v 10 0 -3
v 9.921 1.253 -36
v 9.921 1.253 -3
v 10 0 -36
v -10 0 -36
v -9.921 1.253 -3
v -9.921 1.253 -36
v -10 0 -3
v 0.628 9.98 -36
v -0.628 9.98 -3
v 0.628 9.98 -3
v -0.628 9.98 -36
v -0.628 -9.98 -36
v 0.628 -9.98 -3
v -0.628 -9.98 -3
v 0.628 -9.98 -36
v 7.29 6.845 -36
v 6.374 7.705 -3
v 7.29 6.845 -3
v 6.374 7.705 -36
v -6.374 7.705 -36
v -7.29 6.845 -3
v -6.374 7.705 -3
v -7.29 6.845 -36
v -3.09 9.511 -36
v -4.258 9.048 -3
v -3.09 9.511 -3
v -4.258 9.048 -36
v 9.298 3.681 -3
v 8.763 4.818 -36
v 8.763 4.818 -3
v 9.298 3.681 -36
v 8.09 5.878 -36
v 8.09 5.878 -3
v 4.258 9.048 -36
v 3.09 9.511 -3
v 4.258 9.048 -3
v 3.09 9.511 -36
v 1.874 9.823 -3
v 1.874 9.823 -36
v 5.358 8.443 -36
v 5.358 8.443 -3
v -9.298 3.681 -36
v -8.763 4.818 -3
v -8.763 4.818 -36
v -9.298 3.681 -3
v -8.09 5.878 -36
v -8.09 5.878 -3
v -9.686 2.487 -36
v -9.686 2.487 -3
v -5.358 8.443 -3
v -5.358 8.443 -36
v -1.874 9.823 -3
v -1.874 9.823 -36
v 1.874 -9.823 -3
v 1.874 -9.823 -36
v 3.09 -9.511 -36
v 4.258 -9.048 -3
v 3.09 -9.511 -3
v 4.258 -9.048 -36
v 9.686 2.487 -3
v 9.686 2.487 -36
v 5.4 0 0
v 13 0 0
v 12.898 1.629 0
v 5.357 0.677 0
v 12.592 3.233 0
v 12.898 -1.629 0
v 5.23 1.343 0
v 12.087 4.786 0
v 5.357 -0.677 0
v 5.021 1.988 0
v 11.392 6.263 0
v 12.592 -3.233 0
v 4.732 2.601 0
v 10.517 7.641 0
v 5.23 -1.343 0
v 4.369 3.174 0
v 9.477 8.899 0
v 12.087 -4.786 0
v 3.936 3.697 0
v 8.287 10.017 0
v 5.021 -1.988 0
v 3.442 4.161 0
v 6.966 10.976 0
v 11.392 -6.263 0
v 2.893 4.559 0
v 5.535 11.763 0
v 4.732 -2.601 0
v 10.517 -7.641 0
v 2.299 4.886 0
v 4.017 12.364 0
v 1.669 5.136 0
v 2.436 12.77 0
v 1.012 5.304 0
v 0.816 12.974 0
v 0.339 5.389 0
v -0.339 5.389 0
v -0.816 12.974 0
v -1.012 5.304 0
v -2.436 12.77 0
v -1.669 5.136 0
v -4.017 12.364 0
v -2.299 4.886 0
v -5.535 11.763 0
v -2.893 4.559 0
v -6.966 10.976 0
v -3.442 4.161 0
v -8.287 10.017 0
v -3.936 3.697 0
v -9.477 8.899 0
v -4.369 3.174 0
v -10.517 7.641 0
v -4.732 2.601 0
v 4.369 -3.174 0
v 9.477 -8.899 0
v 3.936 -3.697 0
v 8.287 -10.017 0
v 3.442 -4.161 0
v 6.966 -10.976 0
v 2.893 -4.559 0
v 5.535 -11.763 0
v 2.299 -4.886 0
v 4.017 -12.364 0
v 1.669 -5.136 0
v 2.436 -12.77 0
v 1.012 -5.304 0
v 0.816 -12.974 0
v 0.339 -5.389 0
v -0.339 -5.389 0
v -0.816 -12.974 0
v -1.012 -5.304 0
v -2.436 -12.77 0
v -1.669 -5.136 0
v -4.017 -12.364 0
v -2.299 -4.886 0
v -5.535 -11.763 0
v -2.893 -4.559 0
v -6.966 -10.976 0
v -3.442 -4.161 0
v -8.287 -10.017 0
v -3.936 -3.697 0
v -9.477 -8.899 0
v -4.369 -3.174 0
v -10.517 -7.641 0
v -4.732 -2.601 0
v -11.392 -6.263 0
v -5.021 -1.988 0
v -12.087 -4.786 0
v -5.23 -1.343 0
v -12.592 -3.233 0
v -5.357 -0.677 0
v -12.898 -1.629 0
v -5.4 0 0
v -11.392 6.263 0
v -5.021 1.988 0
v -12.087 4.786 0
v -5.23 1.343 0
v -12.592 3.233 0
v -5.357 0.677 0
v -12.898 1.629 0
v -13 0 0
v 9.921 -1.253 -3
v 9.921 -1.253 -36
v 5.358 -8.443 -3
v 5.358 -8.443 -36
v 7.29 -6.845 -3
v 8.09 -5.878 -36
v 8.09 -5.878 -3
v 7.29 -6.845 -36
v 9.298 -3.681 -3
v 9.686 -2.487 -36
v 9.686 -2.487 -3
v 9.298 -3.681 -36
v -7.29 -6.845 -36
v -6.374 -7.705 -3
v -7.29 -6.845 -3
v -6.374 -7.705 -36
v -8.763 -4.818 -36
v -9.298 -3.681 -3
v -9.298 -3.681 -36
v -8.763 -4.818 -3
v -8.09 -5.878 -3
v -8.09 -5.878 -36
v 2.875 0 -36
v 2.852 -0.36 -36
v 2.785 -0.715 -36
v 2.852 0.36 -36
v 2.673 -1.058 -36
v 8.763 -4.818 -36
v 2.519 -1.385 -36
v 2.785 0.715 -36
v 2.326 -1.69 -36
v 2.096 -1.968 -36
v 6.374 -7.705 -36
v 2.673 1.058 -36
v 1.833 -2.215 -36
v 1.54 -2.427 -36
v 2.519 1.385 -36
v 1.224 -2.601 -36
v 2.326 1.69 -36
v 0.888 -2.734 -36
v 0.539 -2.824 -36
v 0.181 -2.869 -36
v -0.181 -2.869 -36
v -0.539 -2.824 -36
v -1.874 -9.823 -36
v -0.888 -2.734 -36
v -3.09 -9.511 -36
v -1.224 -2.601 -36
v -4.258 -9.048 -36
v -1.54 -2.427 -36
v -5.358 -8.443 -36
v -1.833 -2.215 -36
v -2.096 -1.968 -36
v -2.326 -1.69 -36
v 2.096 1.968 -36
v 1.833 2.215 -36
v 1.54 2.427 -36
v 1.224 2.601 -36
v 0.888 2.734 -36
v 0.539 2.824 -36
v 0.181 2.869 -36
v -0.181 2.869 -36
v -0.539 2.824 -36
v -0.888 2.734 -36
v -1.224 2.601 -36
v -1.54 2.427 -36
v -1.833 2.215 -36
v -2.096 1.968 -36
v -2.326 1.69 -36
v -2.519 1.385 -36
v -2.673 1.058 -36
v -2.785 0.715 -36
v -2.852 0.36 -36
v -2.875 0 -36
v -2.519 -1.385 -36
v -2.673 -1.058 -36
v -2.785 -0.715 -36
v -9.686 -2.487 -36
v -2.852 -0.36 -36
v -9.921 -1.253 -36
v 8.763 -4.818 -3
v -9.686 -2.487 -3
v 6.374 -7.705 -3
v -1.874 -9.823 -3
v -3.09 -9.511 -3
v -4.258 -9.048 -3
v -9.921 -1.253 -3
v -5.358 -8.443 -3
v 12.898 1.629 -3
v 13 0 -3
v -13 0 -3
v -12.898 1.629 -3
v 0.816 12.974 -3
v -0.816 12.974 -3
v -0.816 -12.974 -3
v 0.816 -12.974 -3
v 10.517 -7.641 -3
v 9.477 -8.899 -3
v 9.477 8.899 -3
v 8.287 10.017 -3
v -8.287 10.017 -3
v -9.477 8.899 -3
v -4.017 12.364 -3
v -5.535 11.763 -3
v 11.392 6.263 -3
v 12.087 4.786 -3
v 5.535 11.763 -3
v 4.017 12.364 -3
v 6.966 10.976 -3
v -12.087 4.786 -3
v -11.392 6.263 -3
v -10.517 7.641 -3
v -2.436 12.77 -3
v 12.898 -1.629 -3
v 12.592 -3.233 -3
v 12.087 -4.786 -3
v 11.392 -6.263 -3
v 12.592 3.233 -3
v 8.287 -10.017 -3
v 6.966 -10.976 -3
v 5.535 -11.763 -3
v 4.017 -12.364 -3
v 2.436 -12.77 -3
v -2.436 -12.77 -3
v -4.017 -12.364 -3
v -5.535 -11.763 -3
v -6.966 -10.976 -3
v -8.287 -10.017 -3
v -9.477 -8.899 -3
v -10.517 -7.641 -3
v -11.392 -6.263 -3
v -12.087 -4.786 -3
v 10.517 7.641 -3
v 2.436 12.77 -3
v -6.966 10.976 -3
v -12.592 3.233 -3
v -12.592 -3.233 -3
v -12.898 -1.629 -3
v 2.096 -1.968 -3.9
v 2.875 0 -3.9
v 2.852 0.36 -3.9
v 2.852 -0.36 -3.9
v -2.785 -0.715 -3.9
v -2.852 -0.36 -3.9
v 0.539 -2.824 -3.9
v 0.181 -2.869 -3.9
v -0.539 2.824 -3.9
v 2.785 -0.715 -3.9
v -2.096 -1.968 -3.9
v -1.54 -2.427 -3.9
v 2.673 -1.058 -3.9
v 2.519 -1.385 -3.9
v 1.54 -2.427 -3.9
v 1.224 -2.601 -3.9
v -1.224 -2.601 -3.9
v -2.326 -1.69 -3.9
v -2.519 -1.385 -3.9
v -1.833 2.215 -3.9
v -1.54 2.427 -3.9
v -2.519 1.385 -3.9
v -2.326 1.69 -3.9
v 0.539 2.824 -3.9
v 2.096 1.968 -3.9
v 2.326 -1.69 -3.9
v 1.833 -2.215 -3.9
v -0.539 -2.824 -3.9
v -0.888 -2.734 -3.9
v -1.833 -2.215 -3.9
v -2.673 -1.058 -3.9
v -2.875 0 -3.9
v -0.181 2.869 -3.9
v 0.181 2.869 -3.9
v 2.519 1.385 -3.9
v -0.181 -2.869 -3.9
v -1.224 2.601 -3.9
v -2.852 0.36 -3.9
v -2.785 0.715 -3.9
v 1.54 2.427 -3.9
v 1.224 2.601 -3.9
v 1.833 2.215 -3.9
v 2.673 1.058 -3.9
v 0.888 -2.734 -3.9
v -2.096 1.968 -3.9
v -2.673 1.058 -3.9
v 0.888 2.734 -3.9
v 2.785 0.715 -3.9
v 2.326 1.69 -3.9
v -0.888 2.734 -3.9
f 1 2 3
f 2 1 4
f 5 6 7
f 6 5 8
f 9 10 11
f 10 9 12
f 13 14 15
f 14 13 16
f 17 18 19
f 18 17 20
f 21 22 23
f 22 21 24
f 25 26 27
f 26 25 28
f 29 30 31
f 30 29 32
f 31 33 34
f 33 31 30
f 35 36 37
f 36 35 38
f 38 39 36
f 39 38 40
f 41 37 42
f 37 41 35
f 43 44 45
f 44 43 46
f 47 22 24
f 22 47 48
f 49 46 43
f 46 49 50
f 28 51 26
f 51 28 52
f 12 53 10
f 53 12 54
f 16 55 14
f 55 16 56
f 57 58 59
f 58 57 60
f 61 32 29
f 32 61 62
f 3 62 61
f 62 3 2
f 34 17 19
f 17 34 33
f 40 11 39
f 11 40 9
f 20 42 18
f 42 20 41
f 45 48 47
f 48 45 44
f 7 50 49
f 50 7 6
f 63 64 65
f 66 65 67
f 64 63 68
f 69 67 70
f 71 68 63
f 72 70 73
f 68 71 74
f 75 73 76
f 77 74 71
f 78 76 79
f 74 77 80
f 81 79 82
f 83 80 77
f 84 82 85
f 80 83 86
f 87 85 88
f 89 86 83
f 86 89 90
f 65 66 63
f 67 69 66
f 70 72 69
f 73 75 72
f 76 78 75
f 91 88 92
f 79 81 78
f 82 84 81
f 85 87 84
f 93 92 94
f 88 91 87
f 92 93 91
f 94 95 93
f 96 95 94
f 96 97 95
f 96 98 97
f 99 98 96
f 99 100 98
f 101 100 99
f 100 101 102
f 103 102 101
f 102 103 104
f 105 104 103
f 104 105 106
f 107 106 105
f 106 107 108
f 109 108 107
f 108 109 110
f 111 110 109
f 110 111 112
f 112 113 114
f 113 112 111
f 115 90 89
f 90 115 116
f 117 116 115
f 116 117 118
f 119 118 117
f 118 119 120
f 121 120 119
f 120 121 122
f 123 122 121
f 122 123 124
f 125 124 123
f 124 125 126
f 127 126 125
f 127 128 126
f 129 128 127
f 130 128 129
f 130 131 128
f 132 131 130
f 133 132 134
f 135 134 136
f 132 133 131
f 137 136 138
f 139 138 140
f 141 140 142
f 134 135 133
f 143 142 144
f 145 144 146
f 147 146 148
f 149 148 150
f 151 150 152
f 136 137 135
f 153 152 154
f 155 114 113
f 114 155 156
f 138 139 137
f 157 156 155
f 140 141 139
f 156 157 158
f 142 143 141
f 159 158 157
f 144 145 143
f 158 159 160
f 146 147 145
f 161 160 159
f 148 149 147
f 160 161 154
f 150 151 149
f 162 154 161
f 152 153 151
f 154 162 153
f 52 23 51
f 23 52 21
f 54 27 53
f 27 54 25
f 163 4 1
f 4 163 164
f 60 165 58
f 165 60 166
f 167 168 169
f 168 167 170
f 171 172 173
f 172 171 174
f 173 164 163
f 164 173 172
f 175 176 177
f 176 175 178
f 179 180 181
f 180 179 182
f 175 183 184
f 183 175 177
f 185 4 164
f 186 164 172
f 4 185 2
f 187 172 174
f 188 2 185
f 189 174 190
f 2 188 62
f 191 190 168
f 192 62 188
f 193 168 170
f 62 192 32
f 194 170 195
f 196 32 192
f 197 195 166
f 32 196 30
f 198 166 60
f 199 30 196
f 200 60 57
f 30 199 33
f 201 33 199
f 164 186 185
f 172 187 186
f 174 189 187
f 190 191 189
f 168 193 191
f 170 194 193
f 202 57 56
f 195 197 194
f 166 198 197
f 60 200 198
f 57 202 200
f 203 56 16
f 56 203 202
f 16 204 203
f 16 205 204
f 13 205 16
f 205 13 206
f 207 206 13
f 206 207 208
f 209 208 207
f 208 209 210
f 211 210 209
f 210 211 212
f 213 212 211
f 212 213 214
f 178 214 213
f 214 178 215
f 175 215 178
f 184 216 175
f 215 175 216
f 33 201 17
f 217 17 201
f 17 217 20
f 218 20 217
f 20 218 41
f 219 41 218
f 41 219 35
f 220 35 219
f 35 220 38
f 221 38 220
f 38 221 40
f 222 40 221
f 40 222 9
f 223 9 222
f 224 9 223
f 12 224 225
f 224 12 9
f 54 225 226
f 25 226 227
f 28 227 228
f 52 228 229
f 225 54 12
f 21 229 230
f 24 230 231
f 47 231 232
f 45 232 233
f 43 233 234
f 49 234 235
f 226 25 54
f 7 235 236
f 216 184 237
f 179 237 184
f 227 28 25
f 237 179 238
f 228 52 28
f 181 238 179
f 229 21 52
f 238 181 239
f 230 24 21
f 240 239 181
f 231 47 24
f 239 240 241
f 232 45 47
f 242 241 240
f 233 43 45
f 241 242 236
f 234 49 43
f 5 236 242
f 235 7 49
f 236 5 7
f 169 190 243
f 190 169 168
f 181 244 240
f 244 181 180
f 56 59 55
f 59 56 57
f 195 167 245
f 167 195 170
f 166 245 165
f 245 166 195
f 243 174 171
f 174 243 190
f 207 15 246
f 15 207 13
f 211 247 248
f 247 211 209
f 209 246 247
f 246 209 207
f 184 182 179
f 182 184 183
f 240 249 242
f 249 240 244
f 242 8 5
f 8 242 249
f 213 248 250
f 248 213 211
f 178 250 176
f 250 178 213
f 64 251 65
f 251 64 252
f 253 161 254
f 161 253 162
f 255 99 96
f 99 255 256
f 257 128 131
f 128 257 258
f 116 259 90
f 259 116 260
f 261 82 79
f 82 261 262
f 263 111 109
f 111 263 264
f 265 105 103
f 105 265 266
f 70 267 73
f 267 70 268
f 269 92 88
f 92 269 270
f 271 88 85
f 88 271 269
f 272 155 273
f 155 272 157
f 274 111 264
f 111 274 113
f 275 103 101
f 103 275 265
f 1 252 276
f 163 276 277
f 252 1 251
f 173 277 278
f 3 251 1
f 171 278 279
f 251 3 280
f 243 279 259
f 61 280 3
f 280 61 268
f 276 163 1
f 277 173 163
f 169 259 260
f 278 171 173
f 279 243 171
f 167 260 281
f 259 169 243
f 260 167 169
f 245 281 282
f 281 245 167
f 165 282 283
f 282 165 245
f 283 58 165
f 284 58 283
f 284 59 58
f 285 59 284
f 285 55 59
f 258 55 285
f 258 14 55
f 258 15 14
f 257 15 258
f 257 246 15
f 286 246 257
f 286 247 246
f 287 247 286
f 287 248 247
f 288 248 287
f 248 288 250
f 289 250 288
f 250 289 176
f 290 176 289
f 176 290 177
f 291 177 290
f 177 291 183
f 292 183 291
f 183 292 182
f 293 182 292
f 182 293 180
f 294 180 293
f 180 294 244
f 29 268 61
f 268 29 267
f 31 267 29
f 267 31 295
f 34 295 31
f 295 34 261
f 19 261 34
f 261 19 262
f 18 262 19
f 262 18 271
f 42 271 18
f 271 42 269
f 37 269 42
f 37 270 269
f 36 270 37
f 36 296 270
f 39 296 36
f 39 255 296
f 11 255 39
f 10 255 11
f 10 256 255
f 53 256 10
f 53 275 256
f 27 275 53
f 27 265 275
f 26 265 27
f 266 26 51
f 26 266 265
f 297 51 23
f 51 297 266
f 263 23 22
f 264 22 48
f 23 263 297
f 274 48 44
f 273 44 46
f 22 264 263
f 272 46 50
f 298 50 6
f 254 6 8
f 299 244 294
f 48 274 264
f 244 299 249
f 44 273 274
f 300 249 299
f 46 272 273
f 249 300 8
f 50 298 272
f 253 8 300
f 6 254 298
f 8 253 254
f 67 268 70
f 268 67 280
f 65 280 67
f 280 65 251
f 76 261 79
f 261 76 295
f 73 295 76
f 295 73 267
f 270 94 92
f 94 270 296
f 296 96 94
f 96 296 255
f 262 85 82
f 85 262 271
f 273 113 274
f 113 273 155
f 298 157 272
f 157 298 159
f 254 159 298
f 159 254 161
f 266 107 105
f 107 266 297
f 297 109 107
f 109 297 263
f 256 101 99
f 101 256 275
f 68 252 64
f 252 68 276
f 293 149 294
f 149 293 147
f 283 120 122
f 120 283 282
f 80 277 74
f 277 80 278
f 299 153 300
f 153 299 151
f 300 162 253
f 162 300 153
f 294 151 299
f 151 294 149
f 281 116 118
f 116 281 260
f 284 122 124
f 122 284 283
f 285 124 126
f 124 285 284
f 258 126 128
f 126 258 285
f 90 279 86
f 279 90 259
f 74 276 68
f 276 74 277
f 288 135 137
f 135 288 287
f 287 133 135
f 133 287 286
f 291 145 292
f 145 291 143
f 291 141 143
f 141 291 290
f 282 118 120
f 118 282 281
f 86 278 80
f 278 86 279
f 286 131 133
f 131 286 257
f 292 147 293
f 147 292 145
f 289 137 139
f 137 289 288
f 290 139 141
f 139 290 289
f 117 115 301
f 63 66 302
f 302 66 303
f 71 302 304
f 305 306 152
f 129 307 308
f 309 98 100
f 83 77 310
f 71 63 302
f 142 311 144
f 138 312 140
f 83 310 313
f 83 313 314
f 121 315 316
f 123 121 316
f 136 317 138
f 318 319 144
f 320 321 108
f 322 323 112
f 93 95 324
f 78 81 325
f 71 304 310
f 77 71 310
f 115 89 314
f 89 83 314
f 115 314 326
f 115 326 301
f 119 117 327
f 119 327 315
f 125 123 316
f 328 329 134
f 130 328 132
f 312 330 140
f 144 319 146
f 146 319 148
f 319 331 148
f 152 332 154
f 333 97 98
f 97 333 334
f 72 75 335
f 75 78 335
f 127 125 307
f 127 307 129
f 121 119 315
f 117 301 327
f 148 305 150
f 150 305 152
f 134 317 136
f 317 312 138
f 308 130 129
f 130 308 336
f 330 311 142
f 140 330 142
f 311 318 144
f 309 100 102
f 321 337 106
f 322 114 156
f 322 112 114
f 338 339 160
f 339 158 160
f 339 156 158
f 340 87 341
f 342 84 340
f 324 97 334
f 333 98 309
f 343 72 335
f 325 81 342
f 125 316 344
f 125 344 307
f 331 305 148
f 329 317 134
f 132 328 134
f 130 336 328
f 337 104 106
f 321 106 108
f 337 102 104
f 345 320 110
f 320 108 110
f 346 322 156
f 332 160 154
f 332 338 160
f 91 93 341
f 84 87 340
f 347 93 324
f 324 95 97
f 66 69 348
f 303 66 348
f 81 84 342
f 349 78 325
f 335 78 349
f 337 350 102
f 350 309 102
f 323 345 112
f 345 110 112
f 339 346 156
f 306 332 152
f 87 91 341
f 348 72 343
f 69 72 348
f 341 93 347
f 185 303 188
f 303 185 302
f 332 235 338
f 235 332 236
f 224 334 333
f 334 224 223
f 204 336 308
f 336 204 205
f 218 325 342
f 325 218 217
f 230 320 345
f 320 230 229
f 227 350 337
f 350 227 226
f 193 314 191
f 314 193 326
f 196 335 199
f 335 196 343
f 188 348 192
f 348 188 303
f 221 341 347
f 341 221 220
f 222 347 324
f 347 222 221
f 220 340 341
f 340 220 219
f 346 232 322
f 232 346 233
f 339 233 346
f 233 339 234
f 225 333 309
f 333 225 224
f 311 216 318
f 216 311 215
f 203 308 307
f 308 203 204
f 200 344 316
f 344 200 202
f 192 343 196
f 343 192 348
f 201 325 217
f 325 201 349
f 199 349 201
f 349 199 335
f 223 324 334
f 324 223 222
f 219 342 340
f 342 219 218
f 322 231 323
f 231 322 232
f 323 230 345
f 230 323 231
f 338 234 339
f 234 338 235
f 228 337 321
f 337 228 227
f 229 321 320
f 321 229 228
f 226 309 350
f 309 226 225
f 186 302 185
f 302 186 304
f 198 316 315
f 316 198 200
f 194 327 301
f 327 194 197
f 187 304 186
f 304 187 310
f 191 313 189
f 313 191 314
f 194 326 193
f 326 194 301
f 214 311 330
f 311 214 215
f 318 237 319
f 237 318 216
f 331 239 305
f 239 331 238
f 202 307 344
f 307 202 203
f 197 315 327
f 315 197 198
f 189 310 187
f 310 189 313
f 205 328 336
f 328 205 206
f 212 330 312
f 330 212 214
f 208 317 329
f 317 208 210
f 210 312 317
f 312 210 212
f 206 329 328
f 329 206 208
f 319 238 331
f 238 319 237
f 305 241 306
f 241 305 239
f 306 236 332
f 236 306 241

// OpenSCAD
$fn = 50;


difference() {
	union() {
		translate(v = [0, 0, -36.0000000000]) {
			cylinder(h = 36, r = 10.0000000000);
		}
		translate(v = [0, 0, -3.0000000000]) {
			cylinder(h = 3, r = 13.0000000000);
		}
	}
	union() {
		translate(v = [0, 0, 0]) {
			rotate(a = [0, 0, 0]) {
				difference() {
					union() {
						#translate(v = [0, 0, -36.0000000000]) {
							cylinder(h = 36, r = 2.6000000000);
						}
						#translate(v = [0, 0, -3.9000000000]) {
							cylinder(h = 3.9000000000, r1 = 2.8750000000, r2 = 5.4000000000);
						}
						#translate(v = [0, 0, -36.0000000000]) {
							cylinder(h = 36, r = 2.8750000000);
						}
						#translate(v = [0, 0, -36.0000000000]) {
							cylinder(h = 36, r = 2.6000000000);
						}
					}
					union();
				}
			}
		}
	}
}
